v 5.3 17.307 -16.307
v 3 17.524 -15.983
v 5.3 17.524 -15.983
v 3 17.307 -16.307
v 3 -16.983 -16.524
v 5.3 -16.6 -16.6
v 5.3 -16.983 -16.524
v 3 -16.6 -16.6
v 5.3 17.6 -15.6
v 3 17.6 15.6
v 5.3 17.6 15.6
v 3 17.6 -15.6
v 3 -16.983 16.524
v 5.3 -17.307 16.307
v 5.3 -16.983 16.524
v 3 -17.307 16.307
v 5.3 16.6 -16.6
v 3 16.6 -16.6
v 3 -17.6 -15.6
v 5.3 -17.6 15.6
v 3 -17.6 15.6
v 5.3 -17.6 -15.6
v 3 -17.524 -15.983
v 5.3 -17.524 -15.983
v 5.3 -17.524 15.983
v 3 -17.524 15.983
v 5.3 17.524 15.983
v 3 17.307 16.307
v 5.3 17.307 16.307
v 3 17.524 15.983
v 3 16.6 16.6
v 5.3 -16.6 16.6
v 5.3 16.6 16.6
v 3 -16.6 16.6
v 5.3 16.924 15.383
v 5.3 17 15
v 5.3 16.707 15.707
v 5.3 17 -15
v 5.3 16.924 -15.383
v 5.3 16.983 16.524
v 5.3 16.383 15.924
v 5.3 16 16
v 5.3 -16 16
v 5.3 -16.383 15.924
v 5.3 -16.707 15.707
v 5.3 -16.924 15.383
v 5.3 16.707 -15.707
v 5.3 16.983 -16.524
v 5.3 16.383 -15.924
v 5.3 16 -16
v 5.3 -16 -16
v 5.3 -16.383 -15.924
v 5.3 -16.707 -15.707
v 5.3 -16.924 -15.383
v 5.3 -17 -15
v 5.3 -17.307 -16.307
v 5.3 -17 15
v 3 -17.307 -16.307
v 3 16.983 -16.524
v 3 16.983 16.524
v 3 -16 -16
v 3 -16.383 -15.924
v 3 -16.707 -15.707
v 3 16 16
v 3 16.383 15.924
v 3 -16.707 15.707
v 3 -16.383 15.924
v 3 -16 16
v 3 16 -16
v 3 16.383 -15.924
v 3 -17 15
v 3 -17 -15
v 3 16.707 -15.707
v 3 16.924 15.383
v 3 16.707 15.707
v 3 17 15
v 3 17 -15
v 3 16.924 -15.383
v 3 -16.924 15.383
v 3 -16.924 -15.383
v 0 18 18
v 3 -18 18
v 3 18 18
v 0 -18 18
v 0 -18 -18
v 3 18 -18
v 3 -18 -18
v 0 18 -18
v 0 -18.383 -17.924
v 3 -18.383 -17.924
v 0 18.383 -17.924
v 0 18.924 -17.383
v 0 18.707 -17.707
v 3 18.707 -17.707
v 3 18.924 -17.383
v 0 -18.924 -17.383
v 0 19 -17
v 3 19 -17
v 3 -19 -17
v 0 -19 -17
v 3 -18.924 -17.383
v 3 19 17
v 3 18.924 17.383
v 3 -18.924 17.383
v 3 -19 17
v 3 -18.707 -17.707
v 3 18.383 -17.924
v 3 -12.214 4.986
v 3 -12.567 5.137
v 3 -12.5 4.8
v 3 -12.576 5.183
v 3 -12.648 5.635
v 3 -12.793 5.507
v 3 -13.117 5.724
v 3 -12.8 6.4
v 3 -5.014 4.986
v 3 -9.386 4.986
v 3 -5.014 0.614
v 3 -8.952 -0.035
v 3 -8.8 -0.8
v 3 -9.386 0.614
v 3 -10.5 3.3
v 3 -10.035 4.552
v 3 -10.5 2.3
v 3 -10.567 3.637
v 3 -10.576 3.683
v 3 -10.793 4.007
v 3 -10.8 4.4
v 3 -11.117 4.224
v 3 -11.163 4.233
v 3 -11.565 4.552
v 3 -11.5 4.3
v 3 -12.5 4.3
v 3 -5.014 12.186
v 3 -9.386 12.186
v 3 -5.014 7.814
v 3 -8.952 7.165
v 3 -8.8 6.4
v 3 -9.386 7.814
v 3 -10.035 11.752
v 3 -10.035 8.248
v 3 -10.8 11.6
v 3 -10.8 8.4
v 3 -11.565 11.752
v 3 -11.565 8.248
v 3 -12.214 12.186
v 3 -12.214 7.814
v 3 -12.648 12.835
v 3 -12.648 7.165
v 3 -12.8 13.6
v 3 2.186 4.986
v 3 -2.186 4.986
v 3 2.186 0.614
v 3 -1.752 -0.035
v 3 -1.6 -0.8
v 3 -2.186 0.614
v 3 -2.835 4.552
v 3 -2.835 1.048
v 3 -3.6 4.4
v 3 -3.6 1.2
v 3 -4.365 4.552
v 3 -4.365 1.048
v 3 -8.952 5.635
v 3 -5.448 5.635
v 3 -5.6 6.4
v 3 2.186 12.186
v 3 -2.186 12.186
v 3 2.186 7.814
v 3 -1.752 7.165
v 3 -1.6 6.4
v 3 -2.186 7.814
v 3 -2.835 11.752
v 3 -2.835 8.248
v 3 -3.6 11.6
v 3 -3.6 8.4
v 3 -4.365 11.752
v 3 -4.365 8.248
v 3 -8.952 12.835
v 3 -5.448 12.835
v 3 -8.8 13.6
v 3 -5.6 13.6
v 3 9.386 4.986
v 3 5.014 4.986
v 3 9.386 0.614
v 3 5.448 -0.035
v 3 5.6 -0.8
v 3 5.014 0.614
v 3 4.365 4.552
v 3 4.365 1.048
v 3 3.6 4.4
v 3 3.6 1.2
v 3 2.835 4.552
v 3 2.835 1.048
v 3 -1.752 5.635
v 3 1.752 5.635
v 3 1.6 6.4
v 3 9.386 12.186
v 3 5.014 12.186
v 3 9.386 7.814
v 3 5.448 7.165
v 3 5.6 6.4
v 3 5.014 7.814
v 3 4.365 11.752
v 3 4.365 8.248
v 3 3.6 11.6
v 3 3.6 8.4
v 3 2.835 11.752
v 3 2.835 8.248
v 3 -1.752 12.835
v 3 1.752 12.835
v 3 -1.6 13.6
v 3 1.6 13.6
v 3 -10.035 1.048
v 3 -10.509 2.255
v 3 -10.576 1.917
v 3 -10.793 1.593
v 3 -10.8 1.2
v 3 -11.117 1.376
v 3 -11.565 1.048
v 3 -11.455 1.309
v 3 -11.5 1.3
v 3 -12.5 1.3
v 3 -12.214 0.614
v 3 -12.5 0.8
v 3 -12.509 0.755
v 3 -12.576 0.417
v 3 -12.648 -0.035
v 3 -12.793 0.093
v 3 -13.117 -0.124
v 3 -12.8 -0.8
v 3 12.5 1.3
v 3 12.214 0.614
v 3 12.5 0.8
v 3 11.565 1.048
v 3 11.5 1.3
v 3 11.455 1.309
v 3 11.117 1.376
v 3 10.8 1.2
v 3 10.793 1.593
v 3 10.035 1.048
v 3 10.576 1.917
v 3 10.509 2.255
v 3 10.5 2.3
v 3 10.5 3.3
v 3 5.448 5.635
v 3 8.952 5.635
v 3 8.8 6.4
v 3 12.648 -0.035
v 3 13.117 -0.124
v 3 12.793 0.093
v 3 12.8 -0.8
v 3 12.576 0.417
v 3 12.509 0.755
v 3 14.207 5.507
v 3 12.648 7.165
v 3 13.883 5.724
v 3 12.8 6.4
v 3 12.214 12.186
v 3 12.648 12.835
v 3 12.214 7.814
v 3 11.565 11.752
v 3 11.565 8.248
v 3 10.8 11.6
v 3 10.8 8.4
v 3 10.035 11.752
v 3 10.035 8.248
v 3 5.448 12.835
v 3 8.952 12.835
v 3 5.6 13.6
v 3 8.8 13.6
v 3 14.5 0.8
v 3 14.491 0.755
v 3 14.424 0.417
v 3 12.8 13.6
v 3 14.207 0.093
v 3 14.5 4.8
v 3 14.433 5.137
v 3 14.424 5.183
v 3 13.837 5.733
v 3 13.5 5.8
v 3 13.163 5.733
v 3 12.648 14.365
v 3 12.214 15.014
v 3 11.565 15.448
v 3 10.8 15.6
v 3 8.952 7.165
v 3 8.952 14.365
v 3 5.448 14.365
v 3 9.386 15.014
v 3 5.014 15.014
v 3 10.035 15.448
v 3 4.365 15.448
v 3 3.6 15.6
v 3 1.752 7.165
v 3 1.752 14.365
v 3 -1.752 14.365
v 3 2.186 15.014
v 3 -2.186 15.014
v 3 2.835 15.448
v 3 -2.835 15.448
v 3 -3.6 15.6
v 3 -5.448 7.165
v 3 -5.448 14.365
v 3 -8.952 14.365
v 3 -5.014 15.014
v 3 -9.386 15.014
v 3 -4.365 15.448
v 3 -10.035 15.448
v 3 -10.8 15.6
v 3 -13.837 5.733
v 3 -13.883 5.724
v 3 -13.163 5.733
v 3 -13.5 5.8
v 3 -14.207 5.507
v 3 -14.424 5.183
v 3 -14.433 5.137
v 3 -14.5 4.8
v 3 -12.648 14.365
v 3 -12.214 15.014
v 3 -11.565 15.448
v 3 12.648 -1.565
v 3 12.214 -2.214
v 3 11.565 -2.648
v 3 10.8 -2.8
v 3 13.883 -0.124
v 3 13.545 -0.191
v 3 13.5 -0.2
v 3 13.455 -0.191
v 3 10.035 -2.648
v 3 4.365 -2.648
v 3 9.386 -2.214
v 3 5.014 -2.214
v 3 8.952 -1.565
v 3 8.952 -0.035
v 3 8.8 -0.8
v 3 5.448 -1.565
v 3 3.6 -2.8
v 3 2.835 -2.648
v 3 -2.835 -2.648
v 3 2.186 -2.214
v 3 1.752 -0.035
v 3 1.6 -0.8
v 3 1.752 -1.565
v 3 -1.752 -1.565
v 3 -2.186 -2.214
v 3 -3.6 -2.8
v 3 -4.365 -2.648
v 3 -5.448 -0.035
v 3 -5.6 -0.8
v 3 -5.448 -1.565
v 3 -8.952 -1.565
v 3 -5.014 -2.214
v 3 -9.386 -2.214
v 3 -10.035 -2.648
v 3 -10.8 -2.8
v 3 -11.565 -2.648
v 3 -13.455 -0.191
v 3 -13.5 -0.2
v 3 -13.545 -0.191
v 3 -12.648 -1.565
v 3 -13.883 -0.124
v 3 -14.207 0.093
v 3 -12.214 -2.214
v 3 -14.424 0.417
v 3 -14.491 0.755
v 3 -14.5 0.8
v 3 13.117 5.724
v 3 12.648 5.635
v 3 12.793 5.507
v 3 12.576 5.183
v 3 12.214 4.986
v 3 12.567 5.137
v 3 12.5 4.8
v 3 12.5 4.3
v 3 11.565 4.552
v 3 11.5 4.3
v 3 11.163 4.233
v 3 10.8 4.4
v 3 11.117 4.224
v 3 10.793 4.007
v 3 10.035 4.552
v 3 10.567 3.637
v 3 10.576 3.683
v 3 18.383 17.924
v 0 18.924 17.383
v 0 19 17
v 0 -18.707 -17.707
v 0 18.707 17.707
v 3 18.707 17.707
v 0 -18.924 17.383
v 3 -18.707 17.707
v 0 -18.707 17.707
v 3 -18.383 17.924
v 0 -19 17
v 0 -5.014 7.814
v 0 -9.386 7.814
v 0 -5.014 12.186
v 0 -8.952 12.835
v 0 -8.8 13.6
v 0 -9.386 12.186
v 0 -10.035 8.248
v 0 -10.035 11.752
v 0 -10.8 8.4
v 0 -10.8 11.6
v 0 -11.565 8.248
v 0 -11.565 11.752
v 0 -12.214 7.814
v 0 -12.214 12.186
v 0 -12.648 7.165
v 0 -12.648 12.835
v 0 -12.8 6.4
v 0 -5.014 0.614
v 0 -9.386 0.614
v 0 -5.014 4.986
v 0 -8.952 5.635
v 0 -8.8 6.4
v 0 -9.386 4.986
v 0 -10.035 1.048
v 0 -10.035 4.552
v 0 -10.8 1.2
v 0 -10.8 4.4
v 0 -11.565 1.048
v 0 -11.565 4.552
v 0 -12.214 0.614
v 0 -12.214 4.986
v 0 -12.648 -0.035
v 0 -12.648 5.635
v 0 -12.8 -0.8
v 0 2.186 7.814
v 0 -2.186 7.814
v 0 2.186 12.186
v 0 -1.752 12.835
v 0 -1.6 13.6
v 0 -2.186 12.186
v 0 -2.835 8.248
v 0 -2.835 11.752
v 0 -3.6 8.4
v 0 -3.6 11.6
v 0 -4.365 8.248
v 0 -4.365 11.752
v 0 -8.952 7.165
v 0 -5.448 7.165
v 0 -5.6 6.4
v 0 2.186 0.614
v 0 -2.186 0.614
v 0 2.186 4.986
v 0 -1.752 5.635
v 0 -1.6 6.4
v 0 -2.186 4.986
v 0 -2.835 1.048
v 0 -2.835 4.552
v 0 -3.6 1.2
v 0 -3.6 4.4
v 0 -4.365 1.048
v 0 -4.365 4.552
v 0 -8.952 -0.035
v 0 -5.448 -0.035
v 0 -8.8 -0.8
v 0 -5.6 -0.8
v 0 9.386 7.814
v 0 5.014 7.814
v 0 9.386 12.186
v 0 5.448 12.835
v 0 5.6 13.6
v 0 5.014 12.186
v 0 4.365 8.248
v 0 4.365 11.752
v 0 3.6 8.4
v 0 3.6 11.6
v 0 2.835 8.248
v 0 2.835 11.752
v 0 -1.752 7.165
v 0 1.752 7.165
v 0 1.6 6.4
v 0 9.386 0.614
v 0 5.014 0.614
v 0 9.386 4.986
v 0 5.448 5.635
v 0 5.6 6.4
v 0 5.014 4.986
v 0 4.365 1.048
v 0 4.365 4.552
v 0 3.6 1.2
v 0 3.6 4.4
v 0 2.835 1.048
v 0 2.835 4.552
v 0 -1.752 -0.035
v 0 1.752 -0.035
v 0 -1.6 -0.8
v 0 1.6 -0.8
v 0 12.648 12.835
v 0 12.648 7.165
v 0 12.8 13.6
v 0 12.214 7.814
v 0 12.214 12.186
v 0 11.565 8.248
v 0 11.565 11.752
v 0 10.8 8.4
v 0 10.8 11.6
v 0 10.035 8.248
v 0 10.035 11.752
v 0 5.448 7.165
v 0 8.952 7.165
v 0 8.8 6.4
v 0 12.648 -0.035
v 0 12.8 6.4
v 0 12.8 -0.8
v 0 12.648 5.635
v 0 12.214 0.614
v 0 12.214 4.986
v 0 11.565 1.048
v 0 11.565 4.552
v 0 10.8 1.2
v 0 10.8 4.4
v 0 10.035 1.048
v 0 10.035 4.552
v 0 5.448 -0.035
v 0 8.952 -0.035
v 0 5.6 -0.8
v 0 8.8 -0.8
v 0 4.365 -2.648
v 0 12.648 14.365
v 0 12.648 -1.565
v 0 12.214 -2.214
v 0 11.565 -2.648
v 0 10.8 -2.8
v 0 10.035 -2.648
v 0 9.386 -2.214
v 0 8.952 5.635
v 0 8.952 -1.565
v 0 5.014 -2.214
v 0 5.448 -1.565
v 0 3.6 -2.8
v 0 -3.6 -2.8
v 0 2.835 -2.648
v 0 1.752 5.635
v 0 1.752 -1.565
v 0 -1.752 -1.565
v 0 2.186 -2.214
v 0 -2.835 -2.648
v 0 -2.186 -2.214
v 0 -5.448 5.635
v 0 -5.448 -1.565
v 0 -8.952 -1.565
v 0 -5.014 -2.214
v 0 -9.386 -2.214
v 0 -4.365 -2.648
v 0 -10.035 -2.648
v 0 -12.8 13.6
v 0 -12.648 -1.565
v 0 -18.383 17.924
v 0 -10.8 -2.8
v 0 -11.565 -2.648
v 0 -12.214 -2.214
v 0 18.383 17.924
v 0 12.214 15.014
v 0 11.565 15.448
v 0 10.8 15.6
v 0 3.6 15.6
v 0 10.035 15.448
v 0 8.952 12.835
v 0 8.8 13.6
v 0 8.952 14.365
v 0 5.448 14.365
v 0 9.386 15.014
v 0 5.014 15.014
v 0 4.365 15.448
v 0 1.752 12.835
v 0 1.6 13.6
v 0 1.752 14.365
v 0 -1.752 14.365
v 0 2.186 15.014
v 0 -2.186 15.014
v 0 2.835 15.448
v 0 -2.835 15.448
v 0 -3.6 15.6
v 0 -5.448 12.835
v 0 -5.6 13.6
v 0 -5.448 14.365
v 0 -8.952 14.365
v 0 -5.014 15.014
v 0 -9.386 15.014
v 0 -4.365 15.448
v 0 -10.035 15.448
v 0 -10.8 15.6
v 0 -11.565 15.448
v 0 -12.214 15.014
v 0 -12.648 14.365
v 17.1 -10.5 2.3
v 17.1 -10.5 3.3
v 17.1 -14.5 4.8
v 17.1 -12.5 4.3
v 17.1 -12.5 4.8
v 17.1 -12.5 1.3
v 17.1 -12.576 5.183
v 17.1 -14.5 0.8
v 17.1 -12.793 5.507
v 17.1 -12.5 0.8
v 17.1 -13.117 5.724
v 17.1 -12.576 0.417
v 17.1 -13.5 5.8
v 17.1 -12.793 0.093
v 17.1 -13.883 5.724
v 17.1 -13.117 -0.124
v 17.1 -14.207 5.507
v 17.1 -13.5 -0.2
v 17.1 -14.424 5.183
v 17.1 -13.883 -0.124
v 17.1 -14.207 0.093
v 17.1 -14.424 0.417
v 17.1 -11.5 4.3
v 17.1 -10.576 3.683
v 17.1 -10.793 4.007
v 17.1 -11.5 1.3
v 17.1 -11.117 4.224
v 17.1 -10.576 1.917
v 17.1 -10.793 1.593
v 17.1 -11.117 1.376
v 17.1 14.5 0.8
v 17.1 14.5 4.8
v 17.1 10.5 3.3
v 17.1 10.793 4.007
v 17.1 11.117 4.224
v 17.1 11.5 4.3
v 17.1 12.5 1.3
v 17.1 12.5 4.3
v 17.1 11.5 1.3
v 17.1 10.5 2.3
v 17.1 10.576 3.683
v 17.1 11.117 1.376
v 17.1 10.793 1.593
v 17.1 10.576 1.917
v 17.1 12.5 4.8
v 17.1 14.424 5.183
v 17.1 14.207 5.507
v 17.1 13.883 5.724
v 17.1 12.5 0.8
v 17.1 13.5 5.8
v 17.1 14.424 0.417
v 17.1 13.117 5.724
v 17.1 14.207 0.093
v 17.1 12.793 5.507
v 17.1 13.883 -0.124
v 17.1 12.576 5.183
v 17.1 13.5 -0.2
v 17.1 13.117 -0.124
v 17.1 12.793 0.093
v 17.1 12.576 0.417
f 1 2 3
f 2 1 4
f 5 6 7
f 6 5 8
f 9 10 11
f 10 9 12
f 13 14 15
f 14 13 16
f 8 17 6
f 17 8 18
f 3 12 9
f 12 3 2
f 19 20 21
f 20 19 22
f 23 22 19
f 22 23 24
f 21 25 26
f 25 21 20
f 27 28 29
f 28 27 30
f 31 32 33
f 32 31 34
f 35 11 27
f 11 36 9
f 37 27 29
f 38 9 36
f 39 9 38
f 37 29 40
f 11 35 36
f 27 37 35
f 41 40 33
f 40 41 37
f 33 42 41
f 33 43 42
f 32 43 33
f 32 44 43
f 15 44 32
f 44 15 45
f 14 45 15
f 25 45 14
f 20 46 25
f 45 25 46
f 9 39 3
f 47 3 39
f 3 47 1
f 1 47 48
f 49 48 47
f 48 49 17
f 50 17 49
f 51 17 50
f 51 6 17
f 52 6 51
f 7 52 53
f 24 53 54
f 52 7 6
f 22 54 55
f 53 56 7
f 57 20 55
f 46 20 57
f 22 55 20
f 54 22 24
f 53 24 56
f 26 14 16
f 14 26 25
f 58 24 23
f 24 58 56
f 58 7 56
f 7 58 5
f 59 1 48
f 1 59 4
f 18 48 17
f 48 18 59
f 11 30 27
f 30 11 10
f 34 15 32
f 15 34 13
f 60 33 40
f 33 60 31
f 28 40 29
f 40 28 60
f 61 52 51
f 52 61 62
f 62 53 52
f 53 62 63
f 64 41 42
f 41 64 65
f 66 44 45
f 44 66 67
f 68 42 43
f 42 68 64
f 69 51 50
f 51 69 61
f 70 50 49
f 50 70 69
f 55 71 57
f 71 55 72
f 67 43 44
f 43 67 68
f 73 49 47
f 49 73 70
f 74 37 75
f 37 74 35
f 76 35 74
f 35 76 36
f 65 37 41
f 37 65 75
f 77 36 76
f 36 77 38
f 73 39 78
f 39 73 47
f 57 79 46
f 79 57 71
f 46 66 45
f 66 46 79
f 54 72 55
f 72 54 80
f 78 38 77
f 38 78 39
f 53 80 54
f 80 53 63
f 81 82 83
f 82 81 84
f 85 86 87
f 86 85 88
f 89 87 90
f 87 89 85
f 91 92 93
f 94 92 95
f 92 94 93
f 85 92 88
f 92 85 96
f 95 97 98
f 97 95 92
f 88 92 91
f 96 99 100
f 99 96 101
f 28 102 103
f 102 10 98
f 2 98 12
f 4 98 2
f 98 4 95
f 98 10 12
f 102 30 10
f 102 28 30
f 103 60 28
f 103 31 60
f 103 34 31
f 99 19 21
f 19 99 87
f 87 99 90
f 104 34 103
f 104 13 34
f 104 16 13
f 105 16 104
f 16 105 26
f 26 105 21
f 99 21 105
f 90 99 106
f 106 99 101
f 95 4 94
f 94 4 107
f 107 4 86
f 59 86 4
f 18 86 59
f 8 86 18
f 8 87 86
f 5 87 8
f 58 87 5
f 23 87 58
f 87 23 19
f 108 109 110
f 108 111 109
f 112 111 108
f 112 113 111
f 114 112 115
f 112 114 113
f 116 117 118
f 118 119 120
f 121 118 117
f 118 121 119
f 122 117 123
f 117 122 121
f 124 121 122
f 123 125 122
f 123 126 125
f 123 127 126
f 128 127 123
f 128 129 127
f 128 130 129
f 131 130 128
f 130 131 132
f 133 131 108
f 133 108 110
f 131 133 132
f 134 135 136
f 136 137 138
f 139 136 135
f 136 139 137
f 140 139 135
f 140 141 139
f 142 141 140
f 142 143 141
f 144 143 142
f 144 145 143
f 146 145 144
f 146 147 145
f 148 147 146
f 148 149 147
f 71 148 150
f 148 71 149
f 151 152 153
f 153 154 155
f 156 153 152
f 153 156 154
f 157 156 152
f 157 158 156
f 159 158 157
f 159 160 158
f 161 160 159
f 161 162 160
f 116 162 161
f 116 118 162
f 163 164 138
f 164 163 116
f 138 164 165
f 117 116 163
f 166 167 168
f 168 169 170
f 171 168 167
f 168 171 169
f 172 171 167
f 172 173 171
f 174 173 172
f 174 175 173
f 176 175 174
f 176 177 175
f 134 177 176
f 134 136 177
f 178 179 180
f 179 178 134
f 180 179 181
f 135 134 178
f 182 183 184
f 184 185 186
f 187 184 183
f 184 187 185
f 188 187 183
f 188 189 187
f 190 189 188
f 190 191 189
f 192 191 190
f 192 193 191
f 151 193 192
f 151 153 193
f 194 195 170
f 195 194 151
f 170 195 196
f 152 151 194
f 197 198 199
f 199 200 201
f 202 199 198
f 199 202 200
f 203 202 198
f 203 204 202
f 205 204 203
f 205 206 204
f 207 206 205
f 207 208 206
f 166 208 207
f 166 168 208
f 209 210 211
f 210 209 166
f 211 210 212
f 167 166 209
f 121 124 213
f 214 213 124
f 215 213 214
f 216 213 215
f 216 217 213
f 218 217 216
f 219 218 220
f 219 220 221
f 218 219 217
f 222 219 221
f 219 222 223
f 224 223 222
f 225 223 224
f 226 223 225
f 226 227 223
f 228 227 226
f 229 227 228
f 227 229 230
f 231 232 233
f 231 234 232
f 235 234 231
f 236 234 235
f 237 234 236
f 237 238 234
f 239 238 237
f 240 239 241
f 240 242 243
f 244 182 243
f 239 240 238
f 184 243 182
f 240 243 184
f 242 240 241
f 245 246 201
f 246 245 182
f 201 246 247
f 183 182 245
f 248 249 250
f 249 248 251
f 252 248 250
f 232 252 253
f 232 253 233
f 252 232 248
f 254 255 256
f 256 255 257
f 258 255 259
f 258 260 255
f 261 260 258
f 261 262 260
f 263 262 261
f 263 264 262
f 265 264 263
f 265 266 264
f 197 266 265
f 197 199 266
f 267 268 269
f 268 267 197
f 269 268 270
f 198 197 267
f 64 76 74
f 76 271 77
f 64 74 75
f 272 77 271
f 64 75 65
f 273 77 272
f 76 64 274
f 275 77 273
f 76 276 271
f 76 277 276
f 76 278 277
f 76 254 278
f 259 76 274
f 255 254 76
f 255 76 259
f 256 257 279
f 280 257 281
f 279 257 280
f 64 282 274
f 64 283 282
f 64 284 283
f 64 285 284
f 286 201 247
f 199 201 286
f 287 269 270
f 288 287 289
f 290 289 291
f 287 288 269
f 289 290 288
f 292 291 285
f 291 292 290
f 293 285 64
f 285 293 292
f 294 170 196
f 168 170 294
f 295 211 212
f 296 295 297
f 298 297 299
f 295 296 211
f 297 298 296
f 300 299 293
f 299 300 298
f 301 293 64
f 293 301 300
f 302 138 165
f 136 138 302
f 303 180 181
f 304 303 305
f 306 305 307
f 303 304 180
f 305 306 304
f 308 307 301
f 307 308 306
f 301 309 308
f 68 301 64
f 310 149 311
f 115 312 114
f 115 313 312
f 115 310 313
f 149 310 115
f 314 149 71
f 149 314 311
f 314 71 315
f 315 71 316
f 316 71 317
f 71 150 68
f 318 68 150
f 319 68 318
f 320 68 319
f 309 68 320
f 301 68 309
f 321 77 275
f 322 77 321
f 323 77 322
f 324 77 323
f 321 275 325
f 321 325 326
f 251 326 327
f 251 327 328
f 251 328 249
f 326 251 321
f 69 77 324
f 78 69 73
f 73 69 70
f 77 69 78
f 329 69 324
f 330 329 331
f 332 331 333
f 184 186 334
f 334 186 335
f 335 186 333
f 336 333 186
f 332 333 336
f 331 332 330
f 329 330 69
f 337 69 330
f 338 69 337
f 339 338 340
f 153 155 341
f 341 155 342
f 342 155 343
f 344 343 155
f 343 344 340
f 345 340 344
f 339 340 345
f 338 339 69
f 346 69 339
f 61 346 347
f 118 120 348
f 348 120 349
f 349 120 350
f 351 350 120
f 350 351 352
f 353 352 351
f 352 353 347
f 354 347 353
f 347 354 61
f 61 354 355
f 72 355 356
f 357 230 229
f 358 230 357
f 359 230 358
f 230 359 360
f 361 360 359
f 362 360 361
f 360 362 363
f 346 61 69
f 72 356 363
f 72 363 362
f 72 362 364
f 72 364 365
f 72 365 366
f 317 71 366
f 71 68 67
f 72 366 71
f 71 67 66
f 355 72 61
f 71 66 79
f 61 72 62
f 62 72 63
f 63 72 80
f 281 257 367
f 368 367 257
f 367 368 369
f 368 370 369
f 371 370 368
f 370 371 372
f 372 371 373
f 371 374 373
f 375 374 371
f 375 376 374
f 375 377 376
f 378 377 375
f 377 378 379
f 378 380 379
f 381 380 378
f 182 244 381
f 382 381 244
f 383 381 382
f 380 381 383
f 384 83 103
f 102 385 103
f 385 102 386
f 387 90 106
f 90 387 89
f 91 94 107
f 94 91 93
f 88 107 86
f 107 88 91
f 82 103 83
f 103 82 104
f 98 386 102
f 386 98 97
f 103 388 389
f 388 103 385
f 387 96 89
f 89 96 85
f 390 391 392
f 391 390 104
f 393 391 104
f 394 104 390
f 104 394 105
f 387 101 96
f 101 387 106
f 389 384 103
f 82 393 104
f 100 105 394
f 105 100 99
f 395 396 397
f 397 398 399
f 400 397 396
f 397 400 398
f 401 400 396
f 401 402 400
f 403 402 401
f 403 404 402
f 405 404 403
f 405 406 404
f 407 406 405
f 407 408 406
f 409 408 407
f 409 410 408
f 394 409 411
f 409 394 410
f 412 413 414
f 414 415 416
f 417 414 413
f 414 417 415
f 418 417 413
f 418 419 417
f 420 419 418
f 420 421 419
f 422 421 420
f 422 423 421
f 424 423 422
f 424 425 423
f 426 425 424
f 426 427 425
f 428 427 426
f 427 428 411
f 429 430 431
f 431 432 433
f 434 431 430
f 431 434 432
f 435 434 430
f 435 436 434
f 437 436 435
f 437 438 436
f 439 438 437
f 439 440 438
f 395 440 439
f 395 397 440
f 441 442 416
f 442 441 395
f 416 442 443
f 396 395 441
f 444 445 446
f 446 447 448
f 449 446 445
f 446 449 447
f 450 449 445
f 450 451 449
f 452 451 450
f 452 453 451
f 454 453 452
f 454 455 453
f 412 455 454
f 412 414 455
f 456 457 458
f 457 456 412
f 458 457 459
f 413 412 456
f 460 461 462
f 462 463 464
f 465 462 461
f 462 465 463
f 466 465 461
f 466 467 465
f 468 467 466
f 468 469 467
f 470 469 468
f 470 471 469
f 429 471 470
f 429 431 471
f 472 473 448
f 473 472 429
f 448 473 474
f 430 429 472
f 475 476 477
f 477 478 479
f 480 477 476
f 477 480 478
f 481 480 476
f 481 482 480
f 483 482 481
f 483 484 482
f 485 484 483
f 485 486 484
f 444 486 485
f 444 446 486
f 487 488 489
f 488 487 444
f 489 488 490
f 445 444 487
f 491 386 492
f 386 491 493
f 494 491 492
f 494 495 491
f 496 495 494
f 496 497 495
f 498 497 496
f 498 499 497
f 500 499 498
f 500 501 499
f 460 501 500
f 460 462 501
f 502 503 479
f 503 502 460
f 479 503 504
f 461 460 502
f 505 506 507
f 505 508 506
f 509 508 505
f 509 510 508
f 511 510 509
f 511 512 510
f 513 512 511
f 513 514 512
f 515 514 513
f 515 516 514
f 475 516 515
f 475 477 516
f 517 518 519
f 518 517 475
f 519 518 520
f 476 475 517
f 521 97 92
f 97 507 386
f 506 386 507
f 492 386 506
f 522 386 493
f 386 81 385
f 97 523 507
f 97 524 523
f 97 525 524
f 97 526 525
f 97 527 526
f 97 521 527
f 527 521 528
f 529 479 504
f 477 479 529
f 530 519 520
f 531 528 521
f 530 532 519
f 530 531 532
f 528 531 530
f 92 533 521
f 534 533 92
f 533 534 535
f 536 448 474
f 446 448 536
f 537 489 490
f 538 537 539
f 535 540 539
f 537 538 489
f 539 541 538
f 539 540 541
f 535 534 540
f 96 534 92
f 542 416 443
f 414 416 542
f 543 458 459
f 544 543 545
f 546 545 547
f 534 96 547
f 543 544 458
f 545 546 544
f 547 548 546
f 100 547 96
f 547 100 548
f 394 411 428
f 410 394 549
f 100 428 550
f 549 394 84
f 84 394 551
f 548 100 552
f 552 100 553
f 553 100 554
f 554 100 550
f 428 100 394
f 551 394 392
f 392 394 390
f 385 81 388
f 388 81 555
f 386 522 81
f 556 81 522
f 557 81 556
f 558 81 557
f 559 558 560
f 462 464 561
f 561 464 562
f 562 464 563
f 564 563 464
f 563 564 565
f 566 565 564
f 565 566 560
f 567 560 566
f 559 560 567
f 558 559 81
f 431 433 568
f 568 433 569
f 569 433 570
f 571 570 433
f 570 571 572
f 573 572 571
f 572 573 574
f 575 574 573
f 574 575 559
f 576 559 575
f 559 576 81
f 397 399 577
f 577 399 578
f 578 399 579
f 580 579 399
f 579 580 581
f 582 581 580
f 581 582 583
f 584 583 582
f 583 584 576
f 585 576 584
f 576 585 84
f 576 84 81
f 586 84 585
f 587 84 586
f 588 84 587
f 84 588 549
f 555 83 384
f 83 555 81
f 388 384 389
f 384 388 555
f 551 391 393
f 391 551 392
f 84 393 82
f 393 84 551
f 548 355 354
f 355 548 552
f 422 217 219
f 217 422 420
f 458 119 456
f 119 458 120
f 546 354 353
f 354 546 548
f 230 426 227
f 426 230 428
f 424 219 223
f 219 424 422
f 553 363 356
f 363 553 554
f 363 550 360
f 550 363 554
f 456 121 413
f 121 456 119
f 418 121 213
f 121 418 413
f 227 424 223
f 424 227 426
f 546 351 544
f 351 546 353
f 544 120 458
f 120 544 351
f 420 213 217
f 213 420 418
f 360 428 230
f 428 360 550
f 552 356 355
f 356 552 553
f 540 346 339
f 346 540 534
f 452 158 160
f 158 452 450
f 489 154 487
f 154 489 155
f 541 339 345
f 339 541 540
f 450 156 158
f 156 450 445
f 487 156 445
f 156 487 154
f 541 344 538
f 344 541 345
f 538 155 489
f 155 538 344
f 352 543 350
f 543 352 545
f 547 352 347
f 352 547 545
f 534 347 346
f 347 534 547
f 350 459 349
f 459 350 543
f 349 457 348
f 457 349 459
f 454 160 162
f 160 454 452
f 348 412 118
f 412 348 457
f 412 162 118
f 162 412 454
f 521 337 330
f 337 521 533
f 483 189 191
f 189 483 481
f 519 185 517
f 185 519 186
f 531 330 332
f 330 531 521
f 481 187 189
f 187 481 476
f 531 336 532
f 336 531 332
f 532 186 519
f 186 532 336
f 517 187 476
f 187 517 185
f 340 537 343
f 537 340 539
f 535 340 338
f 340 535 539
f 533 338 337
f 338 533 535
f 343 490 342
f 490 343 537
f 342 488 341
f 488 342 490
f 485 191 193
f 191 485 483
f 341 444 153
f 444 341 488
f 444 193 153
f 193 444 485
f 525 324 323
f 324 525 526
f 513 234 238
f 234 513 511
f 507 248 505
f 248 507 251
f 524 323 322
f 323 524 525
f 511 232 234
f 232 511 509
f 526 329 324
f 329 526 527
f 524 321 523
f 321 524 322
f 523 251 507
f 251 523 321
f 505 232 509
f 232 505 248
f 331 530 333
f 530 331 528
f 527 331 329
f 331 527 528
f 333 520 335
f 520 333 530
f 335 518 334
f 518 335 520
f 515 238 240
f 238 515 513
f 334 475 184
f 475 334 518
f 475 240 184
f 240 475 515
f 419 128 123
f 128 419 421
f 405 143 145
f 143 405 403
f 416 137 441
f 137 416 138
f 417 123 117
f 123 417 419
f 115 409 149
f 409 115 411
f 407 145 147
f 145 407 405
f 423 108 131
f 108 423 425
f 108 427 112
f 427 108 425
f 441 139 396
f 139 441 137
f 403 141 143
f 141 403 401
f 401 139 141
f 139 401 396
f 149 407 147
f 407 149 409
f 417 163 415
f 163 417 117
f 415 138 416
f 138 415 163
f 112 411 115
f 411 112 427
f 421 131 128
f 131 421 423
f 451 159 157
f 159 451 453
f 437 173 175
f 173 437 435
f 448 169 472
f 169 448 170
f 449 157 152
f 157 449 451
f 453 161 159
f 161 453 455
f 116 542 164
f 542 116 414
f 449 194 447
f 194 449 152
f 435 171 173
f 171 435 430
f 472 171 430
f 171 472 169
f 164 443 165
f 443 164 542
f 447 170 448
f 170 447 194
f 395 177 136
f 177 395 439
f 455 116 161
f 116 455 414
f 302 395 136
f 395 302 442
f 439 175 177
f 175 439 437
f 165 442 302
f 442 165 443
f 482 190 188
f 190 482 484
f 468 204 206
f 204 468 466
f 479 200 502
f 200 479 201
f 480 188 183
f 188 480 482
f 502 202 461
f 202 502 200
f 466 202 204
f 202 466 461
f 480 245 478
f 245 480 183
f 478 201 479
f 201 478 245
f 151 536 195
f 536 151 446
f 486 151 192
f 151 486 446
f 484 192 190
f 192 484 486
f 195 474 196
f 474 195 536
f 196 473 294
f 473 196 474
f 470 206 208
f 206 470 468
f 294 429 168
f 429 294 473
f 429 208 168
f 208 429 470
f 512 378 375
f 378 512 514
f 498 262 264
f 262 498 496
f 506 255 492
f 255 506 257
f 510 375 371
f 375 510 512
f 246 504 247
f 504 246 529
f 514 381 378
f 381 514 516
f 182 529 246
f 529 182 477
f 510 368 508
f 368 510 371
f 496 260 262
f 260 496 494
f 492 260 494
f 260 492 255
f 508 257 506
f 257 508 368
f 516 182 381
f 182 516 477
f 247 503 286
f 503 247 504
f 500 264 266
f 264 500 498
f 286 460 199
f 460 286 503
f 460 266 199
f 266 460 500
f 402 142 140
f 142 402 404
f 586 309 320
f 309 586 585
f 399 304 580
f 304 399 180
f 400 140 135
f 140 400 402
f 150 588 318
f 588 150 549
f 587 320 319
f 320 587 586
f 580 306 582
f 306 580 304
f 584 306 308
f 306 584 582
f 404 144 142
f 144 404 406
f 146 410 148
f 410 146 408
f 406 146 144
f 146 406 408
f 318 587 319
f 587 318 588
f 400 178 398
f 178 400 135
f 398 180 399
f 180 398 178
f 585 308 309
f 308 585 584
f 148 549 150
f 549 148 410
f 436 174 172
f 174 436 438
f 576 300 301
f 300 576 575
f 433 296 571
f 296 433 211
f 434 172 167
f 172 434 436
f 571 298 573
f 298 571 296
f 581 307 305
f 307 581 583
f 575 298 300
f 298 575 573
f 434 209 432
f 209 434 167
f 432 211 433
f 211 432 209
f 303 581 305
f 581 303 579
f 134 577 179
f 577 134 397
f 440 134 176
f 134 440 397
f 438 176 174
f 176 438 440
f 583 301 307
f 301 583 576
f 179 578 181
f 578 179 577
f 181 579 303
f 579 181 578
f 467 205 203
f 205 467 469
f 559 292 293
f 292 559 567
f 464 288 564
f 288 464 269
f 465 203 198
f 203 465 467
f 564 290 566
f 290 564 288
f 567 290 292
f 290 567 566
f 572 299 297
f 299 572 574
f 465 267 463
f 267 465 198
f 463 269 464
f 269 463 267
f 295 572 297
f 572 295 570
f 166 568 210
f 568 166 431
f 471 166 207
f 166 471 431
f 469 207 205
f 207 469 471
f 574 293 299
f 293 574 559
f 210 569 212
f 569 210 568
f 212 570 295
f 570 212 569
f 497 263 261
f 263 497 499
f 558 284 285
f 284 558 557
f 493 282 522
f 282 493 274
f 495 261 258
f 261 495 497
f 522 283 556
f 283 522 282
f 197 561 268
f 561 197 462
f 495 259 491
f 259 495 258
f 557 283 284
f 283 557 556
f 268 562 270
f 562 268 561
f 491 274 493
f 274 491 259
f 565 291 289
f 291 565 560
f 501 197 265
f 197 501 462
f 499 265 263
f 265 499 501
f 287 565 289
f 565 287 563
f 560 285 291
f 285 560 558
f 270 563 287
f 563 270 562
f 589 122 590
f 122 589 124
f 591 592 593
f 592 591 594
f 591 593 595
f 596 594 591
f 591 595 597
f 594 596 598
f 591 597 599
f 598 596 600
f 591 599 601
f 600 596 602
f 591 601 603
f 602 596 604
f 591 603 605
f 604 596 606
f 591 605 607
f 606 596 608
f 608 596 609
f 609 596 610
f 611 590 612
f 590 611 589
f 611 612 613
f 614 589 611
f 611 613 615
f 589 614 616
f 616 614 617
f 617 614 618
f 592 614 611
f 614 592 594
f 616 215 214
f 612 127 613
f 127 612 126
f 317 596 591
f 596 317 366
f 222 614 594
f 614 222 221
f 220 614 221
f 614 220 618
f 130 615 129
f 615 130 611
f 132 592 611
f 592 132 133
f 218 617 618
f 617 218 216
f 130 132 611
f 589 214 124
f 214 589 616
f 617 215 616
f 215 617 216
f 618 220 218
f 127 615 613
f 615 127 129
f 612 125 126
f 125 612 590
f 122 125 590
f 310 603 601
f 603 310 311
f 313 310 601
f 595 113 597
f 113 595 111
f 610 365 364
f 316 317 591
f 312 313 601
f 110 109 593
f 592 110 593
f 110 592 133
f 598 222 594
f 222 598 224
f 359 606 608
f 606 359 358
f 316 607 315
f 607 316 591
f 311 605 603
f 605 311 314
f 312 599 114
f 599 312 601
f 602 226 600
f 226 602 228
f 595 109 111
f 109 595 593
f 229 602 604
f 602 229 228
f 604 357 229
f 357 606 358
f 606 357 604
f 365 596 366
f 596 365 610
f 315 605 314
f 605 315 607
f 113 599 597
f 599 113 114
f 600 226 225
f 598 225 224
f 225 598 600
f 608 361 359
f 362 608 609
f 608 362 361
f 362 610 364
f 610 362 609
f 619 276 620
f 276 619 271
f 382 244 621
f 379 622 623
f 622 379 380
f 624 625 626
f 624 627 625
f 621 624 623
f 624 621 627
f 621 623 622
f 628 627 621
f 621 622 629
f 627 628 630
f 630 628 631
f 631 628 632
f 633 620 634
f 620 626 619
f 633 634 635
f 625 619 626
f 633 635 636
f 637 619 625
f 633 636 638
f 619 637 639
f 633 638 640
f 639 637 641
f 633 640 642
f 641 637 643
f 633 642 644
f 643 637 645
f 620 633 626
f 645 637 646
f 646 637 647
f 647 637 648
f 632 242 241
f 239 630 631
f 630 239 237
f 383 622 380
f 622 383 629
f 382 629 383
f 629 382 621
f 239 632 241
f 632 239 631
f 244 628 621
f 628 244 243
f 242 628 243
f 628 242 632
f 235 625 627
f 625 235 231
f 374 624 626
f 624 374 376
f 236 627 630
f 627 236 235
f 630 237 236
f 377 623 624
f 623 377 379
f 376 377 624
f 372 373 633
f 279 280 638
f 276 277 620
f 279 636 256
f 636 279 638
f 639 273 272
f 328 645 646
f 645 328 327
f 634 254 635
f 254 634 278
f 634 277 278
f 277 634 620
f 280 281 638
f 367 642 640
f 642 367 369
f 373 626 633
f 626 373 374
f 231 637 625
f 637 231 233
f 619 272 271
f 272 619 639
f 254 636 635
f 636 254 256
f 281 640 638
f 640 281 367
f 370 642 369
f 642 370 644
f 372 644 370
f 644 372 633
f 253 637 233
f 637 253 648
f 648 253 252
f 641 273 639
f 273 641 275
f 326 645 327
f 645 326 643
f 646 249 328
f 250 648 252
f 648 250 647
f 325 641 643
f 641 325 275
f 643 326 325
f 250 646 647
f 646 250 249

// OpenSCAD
use <../PAM8403.scad>
pam8403_unit_lid_only(ox=40, oy=38, oz=36, lid_thick=3, with_vent=0, with_cabling=1, with_lid=0, with_shell=0, with_holder=0, with_hole=0, with_vent_lid=1, with_arm=1);
